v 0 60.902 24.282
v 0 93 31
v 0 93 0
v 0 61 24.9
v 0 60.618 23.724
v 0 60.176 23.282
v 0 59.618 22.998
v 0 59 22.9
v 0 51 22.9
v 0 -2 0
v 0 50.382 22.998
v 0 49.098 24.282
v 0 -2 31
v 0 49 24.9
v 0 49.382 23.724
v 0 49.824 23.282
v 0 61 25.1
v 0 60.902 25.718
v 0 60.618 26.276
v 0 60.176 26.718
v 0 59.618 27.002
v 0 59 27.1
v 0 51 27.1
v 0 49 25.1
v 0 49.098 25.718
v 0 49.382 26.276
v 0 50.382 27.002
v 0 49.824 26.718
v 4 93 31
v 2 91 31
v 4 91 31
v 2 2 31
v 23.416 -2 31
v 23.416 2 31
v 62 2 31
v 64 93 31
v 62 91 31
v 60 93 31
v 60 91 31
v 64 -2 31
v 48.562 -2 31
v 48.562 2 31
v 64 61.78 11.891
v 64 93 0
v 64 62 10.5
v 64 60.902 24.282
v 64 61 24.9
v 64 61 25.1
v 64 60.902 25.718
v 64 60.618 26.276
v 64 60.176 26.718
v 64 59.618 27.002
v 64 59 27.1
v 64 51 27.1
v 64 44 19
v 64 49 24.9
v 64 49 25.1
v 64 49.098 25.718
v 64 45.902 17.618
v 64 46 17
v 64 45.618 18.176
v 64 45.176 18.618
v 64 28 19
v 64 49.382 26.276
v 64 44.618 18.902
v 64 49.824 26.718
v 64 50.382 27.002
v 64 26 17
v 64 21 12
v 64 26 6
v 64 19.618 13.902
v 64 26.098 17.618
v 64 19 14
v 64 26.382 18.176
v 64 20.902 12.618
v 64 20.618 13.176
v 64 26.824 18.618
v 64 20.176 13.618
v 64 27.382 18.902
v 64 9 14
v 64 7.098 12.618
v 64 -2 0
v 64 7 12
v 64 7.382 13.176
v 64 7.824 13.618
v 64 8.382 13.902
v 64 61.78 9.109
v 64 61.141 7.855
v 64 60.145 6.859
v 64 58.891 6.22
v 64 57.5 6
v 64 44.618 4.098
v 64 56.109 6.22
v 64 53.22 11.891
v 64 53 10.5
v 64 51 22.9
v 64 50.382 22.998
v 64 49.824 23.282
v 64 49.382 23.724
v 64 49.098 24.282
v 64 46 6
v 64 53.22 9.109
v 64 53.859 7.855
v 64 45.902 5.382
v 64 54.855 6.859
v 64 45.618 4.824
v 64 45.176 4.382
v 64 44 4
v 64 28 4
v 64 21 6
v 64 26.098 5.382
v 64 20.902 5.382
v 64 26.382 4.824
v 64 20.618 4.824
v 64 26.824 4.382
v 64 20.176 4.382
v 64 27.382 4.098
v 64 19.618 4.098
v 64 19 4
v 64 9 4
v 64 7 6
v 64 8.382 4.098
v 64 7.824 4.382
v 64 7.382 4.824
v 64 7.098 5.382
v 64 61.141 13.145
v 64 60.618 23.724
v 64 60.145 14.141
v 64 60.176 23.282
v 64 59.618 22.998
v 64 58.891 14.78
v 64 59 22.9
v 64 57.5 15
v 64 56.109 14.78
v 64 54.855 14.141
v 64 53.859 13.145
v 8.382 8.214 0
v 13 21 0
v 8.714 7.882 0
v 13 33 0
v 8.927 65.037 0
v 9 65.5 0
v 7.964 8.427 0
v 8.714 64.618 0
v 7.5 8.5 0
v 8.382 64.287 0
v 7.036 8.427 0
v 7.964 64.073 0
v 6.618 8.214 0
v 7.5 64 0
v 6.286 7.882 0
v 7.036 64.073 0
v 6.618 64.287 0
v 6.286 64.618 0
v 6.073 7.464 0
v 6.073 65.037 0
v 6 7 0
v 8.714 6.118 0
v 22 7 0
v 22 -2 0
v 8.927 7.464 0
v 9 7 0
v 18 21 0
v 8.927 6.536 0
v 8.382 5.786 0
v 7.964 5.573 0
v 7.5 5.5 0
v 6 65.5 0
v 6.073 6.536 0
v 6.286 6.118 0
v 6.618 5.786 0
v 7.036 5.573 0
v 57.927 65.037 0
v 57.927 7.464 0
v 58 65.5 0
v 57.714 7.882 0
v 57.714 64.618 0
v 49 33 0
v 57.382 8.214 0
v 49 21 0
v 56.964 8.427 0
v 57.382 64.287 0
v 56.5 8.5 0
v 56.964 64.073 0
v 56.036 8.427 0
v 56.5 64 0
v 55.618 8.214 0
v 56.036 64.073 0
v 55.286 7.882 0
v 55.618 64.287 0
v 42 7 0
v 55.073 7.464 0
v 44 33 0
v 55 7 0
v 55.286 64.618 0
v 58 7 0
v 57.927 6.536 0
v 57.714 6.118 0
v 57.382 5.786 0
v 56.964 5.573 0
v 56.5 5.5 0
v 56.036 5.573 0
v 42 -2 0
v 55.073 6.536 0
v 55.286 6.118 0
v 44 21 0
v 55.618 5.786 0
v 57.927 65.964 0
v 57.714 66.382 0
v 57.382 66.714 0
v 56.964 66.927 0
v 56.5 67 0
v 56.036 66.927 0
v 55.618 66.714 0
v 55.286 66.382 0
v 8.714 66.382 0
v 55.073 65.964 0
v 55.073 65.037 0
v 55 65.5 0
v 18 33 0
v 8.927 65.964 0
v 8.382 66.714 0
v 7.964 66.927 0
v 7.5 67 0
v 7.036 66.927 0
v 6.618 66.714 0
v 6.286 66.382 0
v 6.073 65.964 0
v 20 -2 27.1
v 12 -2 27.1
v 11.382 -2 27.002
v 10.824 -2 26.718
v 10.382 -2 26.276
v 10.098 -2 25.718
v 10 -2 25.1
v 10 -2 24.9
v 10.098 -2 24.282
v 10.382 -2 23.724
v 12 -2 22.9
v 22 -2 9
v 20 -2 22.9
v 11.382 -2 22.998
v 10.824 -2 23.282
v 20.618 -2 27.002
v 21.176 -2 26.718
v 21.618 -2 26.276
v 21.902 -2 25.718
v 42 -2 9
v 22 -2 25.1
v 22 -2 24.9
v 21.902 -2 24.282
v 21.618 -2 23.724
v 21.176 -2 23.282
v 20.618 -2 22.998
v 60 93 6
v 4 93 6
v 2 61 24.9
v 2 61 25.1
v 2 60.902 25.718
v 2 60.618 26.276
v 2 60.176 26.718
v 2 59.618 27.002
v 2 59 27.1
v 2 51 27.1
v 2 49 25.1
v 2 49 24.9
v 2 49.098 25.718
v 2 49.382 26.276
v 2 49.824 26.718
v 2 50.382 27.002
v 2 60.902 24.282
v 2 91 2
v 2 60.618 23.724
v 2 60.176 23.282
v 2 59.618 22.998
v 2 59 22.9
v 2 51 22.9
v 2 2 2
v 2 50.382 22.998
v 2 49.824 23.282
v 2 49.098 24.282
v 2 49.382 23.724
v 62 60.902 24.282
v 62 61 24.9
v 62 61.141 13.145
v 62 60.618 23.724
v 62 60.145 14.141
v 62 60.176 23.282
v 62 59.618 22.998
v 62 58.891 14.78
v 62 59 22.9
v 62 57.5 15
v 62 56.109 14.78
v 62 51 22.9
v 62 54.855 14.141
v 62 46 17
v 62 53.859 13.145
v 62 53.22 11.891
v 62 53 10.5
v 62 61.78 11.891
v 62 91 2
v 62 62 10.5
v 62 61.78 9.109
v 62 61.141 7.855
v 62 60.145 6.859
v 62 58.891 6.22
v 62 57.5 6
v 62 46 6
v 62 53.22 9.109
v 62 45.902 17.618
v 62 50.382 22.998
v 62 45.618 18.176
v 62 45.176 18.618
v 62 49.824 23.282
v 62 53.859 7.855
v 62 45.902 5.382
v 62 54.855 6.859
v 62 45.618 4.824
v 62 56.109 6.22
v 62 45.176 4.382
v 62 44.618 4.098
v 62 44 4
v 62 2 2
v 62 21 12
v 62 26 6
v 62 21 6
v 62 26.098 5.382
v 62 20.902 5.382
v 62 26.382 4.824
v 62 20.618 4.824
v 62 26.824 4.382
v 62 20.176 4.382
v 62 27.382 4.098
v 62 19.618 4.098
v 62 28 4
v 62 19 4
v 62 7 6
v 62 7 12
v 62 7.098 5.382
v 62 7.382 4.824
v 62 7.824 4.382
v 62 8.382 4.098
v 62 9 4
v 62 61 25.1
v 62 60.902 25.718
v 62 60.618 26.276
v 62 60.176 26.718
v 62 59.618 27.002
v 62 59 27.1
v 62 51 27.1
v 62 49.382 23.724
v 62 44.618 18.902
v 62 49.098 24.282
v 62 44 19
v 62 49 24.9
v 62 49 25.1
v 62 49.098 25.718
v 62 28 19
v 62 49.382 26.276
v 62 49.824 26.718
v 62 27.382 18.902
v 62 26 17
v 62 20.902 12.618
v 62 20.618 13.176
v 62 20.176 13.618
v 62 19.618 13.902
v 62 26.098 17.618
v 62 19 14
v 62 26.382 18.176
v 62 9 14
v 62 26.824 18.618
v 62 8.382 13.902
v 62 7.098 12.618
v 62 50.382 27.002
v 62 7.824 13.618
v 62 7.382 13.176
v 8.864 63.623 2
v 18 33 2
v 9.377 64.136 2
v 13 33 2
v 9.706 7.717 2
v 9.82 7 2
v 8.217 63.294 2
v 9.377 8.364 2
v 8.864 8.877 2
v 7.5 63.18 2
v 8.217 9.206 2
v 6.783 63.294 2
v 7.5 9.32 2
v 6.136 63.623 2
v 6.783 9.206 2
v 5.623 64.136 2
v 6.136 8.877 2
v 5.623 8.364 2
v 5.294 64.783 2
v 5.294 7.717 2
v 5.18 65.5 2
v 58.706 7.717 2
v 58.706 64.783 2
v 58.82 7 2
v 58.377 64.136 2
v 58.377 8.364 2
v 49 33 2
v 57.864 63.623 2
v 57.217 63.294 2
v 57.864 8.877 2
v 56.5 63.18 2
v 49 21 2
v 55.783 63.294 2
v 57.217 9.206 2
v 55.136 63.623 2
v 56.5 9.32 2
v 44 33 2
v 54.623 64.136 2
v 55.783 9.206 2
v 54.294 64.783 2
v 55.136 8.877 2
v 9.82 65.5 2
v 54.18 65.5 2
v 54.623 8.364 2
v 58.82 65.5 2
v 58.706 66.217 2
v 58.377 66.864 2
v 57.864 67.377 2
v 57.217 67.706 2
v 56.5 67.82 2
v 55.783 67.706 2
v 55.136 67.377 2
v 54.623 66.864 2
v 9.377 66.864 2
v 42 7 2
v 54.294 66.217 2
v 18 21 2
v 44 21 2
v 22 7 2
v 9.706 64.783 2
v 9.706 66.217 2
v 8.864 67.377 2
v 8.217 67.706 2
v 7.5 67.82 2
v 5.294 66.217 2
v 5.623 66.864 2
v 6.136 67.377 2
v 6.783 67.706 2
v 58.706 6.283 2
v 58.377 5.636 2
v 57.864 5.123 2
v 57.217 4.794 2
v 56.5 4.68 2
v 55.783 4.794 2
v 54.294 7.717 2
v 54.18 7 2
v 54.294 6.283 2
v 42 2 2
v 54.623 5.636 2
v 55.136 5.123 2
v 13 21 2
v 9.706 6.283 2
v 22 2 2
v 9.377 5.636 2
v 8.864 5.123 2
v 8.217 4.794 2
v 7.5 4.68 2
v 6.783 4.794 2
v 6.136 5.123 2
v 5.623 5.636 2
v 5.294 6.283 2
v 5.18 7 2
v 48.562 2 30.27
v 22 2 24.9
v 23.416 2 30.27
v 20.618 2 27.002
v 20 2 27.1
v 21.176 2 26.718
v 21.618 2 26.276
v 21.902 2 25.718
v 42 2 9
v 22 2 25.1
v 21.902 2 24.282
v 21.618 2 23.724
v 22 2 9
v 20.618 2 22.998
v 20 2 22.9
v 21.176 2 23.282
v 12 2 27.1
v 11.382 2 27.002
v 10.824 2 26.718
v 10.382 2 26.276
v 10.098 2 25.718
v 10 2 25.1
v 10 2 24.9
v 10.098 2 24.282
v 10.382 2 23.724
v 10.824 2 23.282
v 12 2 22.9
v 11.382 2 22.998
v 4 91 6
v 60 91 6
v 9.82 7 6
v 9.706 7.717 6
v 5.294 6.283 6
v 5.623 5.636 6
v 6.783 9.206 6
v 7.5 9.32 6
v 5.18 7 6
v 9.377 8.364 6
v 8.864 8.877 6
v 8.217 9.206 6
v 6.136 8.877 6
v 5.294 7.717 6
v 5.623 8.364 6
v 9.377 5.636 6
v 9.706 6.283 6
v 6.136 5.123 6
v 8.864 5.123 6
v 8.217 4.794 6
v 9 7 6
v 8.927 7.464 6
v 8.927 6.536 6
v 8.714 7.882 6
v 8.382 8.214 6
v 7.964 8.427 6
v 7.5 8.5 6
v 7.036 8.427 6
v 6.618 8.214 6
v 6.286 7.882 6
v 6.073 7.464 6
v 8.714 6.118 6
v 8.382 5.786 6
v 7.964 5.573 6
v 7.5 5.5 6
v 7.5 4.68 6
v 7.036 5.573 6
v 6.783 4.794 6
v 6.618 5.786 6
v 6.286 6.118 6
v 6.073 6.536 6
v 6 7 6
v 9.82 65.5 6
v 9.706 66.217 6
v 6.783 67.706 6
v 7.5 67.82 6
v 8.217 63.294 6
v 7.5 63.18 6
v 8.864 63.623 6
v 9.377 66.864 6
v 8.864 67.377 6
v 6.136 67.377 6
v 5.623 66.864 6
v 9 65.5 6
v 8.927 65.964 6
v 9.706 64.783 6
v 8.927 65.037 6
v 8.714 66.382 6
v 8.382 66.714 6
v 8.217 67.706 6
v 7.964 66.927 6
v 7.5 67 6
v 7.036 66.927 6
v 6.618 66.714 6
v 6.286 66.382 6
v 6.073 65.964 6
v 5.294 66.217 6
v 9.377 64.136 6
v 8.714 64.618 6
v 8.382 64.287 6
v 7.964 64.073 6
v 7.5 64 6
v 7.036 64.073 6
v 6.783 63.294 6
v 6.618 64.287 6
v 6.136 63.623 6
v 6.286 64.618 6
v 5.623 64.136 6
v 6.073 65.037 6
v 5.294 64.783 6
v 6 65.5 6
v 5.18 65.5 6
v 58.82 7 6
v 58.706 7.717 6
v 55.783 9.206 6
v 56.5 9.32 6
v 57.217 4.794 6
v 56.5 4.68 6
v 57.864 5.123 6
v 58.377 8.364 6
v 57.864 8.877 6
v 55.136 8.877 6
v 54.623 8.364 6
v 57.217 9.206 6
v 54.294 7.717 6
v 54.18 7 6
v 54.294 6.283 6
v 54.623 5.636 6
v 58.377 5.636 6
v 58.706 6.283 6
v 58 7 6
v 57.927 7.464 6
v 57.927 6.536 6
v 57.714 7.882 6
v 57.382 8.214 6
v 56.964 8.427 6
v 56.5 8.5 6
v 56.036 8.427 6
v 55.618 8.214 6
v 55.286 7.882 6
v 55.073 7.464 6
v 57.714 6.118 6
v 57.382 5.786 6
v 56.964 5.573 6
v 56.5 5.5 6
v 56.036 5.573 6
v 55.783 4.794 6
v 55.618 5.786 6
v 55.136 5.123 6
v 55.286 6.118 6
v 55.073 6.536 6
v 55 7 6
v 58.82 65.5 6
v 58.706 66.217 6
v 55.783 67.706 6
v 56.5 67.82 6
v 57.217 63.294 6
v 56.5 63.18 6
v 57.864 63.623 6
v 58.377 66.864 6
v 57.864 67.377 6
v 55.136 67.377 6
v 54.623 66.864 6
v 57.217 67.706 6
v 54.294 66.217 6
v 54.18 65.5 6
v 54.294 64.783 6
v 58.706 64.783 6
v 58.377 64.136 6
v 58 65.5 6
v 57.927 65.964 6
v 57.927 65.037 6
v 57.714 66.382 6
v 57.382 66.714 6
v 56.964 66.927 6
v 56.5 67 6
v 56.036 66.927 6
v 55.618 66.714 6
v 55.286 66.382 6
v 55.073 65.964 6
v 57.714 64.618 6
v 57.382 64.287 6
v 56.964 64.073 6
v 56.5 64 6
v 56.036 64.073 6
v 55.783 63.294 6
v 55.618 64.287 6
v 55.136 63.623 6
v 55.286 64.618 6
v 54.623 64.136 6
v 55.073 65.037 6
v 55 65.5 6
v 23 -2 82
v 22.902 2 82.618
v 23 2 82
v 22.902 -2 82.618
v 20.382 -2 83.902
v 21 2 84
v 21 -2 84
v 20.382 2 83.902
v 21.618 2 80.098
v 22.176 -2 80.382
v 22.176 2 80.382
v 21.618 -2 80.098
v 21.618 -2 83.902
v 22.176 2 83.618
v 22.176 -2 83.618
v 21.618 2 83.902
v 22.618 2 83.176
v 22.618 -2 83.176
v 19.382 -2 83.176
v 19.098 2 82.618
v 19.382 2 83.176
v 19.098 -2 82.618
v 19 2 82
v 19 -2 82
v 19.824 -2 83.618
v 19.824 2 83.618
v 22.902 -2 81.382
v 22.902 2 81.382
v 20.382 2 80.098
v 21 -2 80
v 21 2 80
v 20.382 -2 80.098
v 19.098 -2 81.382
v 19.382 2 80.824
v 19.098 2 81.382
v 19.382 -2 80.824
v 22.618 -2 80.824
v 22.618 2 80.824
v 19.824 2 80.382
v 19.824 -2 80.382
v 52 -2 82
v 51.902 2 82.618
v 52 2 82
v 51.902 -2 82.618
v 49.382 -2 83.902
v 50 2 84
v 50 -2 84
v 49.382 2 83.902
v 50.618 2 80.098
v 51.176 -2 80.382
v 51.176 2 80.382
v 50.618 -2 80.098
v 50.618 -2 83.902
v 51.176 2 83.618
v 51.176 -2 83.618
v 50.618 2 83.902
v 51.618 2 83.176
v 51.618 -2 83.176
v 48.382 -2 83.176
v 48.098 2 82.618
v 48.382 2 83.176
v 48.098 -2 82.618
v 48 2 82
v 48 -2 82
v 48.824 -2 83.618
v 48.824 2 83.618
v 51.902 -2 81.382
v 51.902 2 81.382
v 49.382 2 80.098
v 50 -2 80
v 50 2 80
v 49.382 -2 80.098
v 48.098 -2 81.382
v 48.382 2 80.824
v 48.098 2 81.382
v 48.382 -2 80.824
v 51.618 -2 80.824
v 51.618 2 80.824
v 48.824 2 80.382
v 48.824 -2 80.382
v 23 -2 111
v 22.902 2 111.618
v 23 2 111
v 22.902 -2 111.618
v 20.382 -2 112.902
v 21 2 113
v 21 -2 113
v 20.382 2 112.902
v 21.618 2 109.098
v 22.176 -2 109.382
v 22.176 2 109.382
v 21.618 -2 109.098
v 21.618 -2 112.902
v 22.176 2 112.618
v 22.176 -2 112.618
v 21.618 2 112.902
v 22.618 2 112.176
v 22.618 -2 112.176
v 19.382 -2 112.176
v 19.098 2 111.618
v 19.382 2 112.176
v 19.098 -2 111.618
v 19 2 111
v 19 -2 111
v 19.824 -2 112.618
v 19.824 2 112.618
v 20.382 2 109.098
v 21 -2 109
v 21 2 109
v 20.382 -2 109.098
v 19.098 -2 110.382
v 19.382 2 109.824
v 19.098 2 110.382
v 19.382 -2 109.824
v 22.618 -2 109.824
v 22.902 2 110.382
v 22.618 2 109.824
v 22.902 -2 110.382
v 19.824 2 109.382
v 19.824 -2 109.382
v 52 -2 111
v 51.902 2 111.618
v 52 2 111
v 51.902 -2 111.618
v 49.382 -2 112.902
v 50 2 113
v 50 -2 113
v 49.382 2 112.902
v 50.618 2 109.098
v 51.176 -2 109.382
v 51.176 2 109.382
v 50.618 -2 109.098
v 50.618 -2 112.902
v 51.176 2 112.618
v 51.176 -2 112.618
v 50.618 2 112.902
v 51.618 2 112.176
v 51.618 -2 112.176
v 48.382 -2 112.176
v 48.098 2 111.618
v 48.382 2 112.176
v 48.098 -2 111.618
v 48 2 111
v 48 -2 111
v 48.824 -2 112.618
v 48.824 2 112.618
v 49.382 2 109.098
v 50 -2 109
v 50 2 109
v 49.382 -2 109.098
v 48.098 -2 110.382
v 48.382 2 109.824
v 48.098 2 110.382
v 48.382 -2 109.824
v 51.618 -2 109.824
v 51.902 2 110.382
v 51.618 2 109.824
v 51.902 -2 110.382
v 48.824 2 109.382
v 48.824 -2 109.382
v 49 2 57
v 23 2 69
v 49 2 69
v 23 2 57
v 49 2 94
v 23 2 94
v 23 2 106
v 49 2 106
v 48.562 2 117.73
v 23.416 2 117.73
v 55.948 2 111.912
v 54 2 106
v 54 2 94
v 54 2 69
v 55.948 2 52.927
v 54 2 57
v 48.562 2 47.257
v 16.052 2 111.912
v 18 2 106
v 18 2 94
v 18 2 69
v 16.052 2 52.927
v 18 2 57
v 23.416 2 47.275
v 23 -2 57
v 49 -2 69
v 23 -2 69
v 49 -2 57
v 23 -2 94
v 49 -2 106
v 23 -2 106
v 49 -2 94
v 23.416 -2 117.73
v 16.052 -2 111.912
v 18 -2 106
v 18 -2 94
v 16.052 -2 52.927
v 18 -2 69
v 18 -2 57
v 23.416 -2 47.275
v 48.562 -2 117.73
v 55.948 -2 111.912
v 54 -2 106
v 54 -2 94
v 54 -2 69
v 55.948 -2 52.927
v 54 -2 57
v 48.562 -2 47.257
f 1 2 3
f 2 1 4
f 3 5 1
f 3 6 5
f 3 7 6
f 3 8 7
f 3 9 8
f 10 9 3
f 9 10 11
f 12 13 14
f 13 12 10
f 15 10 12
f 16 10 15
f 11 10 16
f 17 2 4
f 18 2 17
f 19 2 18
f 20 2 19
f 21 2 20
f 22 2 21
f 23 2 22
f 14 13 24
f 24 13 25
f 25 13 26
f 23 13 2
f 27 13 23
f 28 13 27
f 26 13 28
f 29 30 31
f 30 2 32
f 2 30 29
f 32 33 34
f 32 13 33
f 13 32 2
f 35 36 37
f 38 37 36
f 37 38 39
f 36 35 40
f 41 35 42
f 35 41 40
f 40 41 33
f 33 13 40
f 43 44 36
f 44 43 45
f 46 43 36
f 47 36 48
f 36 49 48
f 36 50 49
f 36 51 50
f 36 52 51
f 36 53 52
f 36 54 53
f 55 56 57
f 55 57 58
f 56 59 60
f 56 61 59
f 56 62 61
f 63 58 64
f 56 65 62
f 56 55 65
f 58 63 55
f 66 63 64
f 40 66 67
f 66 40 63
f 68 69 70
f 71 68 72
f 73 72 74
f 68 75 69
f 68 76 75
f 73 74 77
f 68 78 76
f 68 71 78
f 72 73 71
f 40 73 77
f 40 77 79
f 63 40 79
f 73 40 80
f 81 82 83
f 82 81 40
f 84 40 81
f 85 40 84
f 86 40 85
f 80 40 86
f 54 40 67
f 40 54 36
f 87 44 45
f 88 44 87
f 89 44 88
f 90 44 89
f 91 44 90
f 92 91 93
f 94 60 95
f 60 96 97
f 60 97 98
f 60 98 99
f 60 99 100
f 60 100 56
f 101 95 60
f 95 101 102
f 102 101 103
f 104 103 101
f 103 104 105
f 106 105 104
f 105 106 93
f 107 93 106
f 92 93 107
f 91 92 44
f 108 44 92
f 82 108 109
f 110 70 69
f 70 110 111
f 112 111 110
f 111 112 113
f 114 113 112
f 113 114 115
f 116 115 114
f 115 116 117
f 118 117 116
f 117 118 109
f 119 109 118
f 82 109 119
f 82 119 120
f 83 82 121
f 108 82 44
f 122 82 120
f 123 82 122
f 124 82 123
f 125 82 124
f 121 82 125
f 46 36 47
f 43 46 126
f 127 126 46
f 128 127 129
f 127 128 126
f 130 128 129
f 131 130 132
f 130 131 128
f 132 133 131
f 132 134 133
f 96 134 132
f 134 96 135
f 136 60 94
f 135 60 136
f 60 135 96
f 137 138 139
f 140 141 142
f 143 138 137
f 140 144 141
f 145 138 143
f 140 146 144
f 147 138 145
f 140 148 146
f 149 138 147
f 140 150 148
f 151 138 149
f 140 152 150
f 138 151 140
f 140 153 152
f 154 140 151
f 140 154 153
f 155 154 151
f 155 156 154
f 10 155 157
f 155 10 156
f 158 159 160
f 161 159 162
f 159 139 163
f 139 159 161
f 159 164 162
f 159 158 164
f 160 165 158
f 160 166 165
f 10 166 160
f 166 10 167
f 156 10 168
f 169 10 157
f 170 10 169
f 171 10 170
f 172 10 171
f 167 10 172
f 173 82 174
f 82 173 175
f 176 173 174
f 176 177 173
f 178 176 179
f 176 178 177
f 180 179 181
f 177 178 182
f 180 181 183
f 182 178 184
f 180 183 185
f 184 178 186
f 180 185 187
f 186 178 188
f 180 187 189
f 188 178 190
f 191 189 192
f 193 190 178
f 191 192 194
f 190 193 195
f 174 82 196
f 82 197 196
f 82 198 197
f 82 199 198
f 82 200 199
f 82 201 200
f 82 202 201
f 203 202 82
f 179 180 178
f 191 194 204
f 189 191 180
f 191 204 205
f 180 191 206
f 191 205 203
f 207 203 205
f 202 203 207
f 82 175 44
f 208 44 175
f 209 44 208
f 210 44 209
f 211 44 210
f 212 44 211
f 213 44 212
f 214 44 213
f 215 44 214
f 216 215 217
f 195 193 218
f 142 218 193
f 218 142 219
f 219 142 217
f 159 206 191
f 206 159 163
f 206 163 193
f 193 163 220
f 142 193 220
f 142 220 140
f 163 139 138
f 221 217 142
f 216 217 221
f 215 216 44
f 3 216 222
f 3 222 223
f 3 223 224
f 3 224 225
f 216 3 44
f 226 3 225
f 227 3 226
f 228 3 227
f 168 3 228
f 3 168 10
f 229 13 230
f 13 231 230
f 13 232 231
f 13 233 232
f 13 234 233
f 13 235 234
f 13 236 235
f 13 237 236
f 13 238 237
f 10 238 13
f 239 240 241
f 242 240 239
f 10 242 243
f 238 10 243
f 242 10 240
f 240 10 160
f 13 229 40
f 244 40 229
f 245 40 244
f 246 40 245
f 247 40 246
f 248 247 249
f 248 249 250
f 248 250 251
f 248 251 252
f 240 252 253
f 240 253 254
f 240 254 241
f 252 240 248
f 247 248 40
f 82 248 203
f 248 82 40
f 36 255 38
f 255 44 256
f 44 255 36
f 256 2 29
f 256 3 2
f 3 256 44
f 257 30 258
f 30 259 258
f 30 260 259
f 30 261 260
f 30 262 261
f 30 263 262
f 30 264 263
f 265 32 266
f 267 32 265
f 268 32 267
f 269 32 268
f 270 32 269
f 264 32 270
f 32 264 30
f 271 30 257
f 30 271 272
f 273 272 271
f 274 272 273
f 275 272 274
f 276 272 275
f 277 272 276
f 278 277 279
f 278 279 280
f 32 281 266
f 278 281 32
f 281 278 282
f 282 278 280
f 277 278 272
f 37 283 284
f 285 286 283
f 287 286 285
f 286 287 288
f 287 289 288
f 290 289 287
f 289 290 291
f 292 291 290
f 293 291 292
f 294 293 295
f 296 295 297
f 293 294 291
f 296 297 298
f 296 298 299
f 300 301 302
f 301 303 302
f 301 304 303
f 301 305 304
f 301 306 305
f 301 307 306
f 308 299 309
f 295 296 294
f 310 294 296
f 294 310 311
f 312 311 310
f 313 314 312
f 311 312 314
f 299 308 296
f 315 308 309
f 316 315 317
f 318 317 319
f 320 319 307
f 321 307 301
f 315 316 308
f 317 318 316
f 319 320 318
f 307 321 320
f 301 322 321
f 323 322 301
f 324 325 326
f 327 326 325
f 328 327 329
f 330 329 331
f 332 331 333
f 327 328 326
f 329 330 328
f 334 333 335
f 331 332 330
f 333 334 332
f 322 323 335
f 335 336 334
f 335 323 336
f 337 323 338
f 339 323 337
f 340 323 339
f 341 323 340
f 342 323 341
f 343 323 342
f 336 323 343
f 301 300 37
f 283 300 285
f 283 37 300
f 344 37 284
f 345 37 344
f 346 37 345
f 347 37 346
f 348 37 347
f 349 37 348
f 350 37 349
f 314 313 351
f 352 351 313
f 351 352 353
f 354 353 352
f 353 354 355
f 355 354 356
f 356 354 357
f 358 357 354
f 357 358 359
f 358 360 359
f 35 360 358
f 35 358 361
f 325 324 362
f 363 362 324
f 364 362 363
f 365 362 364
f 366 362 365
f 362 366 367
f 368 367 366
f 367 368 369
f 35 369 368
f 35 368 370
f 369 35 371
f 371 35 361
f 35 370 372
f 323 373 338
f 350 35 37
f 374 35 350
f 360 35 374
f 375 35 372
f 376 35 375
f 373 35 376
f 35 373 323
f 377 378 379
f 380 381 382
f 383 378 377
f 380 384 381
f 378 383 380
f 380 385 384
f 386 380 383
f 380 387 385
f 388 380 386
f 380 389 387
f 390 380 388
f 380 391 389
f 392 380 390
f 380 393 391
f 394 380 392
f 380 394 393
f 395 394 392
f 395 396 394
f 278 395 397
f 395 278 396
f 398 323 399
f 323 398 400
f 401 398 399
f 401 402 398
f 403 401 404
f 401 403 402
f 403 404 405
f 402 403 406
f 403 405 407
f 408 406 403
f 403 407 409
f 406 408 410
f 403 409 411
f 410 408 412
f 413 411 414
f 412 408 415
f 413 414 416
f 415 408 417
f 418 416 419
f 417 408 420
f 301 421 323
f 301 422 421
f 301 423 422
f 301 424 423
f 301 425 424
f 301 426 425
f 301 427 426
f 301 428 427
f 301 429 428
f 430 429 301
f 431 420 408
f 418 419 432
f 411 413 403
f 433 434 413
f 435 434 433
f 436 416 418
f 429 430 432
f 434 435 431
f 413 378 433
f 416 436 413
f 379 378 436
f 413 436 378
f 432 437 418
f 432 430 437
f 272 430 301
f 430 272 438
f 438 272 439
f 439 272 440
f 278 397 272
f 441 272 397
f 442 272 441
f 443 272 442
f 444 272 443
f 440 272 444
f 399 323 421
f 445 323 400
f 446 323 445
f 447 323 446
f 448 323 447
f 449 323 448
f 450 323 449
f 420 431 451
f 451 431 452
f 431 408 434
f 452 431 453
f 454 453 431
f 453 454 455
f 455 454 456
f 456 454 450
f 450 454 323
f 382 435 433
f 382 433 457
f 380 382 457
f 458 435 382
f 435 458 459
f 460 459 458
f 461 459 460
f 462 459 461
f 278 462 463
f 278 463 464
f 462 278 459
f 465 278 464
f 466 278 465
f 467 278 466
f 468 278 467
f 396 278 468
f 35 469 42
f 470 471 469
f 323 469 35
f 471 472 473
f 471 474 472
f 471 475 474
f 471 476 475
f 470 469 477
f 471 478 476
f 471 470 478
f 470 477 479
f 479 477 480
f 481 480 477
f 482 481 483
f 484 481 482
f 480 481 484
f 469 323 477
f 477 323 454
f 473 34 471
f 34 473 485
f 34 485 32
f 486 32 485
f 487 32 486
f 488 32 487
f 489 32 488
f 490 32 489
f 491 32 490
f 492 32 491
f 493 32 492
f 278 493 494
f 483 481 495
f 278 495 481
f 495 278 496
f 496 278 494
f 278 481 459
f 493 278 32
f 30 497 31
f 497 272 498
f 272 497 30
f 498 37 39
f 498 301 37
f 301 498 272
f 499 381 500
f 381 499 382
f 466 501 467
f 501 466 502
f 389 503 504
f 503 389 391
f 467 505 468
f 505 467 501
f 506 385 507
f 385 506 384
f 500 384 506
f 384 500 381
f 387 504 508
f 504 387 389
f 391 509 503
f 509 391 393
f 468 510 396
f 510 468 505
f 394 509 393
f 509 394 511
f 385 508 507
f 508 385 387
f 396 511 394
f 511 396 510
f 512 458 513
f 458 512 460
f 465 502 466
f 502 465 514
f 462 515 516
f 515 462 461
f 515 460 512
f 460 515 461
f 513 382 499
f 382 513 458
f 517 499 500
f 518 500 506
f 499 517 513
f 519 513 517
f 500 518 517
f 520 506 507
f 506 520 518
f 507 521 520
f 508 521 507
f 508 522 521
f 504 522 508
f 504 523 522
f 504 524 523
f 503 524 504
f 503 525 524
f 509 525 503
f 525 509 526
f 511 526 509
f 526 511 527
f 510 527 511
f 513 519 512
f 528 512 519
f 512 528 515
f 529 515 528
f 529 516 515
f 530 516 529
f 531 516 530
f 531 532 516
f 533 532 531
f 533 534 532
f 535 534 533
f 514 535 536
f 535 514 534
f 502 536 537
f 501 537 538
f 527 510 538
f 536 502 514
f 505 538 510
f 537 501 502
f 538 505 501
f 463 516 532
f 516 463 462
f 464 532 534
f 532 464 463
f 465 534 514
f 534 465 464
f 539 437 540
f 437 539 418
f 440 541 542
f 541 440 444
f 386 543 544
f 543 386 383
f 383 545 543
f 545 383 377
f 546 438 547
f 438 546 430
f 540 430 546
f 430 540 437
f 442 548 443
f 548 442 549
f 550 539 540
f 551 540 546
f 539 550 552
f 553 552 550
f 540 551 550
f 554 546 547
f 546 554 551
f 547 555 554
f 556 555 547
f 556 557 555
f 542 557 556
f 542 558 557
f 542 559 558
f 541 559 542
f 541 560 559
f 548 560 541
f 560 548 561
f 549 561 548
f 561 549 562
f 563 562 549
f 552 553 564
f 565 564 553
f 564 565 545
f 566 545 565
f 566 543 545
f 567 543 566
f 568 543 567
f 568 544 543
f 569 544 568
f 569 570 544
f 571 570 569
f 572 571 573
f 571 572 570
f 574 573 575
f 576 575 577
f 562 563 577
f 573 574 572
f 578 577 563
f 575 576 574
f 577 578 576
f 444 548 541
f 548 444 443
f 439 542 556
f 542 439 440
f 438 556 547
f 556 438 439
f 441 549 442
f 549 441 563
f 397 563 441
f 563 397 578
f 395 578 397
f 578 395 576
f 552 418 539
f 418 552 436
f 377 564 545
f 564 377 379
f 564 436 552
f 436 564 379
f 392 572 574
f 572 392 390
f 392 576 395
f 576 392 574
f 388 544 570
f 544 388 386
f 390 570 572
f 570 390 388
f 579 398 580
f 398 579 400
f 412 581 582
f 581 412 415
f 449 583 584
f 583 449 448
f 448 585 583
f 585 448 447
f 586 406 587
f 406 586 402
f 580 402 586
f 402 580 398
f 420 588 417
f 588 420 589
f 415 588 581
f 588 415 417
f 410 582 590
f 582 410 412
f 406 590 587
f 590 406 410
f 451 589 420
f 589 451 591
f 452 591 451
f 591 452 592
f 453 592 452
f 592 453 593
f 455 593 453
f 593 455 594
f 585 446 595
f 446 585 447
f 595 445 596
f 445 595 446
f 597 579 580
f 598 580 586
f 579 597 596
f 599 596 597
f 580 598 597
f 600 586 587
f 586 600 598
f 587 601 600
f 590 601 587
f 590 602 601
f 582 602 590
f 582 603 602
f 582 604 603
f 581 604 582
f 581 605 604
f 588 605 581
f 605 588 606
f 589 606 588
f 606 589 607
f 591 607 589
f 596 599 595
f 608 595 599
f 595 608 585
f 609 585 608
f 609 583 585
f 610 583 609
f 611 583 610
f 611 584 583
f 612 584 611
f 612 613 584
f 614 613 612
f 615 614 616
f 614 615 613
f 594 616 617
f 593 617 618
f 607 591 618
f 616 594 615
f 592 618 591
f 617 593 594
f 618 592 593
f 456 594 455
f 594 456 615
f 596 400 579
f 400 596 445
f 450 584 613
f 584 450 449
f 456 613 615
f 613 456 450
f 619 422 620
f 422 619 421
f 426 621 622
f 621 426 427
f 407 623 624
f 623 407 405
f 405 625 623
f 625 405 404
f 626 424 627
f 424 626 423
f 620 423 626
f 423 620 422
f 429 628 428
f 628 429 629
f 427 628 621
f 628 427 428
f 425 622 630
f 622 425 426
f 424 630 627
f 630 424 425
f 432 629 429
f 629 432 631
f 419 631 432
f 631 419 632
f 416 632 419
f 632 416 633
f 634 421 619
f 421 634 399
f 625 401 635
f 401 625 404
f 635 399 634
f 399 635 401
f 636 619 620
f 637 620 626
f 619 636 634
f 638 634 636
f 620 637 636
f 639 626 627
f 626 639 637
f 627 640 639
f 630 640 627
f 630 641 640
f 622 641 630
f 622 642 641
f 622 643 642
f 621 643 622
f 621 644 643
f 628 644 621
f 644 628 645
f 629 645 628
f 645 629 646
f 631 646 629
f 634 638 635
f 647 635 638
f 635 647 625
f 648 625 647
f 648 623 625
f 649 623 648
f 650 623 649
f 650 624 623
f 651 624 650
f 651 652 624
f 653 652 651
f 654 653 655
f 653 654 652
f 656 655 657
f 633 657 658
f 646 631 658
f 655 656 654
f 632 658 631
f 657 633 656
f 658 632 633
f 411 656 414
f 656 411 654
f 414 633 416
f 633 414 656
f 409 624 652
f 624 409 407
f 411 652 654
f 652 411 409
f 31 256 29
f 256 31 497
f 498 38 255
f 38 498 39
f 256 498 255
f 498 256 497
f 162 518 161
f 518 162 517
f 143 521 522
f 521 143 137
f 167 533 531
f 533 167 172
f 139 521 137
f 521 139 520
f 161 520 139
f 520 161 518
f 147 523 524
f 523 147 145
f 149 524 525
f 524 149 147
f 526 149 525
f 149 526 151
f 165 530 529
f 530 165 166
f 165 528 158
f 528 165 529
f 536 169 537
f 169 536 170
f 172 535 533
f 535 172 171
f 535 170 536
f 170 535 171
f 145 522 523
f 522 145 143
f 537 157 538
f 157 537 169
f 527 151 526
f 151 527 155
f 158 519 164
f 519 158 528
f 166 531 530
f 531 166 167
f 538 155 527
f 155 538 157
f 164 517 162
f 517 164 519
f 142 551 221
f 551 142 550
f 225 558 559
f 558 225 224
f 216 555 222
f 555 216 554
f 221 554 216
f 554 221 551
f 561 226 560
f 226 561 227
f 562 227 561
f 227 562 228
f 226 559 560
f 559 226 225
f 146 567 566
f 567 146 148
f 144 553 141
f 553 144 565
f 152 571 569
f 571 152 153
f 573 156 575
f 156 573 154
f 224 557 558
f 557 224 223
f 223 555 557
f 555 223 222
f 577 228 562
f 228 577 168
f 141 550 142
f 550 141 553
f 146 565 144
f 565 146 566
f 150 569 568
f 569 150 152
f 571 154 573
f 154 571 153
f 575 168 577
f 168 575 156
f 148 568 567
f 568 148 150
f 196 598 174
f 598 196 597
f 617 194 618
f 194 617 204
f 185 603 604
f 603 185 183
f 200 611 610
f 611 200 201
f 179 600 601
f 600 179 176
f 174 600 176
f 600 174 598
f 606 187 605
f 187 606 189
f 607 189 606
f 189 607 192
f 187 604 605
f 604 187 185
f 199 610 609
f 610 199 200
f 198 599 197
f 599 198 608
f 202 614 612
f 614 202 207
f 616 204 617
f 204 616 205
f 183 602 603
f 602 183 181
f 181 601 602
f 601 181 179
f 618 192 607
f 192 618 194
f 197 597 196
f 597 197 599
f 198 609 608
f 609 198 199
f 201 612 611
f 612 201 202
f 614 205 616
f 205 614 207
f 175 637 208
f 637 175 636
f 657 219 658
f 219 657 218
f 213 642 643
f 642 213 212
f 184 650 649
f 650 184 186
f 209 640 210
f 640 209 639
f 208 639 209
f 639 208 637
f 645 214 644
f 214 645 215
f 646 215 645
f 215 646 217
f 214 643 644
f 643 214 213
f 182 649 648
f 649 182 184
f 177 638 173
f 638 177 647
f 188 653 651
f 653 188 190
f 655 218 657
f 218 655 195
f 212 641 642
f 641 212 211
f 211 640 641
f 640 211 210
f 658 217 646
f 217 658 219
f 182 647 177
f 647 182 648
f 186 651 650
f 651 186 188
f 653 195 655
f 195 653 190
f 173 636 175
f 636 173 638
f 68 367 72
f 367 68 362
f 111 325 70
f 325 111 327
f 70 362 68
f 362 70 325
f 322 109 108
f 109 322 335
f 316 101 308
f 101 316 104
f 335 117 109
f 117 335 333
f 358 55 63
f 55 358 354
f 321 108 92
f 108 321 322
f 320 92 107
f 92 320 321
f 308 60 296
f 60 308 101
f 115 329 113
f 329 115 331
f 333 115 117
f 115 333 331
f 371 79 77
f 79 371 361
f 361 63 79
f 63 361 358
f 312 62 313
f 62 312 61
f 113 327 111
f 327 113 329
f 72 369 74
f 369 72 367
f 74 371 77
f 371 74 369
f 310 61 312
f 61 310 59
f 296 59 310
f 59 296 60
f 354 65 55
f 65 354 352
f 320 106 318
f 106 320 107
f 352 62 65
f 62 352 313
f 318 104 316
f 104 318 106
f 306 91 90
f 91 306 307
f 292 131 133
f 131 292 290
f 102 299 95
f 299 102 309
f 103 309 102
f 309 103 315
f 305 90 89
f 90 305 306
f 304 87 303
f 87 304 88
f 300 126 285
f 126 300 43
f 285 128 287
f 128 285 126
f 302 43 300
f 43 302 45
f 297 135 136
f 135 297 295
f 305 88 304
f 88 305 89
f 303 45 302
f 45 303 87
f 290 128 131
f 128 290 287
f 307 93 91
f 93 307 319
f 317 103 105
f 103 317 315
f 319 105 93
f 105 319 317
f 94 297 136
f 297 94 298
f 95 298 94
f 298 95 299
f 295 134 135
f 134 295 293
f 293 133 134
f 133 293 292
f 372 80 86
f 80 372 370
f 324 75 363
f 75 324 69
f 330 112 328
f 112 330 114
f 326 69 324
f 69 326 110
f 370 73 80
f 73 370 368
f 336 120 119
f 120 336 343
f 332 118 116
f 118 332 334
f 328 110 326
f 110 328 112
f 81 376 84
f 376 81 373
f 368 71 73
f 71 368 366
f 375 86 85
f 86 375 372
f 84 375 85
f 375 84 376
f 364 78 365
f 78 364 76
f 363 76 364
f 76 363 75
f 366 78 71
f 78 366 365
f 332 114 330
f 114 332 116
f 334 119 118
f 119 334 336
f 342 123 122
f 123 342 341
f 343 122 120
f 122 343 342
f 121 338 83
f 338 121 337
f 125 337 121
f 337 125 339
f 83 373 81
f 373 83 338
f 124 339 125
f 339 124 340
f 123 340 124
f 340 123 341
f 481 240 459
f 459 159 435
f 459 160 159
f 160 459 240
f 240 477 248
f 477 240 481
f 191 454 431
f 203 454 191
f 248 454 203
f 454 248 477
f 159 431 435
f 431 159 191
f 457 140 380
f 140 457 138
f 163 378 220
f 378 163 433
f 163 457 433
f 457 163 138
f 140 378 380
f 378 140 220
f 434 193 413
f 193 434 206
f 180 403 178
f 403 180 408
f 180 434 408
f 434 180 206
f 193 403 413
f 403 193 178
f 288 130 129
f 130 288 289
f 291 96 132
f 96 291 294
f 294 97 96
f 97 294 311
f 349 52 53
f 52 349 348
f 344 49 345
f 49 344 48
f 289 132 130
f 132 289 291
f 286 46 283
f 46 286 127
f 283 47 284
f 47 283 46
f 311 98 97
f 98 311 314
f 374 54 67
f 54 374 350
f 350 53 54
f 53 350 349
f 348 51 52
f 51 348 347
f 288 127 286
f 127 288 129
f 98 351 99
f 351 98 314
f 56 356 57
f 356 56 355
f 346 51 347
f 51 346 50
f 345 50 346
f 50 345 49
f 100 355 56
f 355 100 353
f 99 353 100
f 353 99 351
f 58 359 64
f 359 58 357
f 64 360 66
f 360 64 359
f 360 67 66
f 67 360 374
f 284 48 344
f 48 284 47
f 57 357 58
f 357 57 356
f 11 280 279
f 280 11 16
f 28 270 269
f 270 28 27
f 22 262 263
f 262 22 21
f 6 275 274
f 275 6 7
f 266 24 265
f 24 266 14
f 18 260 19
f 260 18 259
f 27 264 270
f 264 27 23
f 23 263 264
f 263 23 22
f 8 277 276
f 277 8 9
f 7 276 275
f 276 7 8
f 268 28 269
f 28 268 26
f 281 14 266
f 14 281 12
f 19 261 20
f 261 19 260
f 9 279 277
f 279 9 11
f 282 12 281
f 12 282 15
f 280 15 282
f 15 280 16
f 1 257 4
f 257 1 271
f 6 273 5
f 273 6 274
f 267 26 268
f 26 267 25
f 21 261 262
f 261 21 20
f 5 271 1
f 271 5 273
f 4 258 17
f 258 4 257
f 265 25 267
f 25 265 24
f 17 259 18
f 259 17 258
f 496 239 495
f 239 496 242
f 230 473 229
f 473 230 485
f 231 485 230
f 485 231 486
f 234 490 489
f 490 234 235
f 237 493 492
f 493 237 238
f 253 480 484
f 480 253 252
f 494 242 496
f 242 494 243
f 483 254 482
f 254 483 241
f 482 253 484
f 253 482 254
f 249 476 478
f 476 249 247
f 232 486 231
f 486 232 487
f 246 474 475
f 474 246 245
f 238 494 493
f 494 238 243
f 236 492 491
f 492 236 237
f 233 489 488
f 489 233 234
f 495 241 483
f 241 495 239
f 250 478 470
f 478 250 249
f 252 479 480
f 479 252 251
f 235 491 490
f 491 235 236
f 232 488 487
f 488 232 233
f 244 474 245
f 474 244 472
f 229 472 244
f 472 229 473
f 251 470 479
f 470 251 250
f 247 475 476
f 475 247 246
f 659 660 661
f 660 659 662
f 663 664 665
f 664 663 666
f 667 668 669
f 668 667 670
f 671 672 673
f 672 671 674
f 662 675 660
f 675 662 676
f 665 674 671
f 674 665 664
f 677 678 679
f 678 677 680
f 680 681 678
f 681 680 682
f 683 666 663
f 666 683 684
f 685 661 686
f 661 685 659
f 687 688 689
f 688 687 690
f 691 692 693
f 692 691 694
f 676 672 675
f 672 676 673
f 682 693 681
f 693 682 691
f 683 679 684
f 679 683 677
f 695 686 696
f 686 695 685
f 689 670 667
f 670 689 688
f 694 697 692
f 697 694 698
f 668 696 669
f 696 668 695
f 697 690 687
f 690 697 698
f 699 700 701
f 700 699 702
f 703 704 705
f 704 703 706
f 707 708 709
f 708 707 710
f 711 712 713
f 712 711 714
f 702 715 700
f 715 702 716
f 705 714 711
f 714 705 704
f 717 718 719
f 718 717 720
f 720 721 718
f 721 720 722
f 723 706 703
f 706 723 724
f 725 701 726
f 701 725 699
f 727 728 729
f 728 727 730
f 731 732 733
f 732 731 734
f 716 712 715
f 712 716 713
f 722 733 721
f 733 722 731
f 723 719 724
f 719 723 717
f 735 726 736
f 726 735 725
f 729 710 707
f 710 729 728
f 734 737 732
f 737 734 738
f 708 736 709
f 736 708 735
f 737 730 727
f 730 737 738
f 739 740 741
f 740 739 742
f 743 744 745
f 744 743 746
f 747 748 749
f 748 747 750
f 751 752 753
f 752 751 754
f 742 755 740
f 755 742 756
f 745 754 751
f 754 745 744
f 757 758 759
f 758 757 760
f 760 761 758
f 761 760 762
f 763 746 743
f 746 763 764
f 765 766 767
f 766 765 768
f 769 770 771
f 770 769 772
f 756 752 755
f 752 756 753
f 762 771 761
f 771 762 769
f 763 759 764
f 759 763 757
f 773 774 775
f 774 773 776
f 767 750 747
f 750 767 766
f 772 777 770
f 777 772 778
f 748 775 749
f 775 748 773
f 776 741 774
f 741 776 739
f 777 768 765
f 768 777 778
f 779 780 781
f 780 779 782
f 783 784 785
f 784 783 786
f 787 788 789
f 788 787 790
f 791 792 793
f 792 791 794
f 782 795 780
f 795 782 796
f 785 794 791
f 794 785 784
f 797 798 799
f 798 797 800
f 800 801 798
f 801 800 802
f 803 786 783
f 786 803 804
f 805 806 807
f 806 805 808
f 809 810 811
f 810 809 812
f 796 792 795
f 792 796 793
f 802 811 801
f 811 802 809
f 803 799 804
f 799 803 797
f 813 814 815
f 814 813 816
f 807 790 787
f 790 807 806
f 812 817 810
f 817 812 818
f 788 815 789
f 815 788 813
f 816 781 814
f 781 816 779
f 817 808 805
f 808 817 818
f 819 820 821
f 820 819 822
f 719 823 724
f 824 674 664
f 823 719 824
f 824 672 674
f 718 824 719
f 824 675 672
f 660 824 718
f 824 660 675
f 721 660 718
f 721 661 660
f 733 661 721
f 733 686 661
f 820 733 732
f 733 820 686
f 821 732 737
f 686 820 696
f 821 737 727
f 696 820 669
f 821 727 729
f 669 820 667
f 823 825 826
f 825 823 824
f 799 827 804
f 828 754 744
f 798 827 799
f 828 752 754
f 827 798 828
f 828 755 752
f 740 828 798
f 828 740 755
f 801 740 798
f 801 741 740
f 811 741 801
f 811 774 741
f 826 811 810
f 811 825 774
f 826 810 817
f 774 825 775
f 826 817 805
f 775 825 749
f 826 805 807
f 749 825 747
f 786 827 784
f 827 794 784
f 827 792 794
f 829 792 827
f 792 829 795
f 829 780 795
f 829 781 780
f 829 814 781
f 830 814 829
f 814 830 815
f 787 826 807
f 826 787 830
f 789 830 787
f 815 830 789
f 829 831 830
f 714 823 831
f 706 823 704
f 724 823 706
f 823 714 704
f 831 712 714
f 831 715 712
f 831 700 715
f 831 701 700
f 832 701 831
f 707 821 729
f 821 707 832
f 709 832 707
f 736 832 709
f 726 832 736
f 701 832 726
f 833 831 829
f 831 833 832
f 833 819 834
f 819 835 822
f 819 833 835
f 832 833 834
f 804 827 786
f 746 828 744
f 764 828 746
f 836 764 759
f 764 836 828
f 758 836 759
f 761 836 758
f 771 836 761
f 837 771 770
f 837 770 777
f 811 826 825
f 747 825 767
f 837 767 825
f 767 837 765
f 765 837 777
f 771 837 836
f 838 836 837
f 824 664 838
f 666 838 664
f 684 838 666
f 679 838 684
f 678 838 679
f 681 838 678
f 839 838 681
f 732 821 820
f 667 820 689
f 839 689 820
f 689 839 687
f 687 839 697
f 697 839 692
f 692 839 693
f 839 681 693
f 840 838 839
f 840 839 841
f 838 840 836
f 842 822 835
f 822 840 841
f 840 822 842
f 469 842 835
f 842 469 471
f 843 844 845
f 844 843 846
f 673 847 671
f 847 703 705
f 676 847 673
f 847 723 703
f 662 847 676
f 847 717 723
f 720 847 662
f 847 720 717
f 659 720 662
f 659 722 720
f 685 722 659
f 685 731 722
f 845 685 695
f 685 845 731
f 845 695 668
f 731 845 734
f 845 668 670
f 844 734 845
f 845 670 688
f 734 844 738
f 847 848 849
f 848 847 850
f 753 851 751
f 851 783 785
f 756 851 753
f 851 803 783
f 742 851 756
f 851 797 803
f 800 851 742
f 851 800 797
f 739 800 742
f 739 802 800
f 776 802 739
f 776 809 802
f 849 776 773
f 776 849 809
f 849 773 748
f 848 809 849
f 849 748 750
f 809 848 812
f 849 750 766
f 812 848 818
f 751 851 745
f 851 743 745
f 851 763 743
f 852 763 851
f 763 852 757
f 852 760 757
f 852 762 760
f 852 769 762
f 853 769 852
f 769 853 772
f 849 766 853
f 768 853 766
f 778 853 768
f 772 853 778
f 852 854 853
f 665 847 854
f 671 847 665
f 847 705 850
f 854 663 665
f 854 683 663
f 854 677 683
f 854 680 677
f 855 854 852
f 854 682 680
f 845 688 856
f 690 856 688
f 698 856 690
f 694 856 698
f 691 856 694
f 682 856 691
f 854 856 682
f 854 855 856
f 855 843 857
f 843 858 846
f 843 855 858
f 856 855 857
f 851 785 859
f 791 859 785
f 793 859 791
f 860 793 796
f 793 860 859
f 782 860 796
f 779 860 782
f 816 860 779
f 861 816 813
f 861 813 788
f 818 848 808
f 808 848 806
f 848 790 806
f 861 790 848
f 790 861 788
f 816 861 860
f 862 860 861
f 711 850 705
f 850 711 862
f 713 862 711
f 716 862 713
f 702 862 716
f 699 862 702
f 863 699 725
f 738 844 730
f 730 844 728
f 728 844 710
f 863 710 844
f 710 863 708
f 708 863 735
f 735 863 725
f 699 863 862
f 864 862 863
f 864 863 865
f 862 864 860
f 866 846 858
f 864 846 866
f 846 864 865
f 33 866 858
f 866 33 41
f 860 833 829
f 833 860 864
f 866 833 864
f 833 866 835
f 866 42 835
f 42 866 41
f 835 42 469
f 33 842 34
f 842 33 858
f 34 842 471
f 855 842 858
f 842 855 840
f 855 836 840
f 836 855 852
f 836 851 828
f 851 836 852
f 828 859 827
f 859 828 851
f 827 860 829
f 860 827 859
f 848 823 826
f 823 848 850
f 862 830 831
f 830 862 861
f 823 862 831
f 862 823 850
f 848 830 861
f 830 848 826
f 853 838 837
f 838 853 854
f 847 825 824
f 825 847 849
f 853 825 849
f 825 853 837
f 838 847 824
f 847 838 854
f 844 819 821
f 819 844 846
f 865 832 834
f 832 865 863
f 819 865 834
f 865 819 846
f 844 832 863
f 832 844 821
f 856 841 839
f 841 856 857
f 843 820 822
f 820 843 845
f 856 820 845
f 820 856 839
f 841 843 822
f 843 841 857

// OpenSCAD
// RPi Case Base
// by Ming-Dao Chia
// for the Borevitz Lab, Australian National University

// Settings
circle_res = 20; // can increase for final export
case_height = 31; // increase if adding lots of shields
rounding=2; // for square ports, less = sharper corners

// Constants
fudge=0.2; // just for the tongue
RPi_space_height = 4; // how high the screw spacers on the bottom are
RPi_screws = 3; // size of RPi screws
RPi_screw_hole_thickness=0.82; // spacer wall thickness

// configurable hole for screws
module screwHole(diameter, x, y){ 
    translate([x,y,-2])
    cylinder(d=diameter, h=10, $fn=circle_res);
}

// form the outer wall of bottom screw spacers
module spacer(x,y){
    translate([x,y,2])
            cylinder(d=RPi_screws+(RPi_screw_hole_thickness*2),h=RPi_space_height, $fn=circle_res);
}

// rounded rectangle module
module sidePort(x,y, rounding=rounding){
    rotate([0,90,0])
    minkowski()
    {
      cube([y-rounding*2,x-rounding*2,1],center=true);
      cylinder(r=rounding,h=5, $fn=circle_res);
    }
}

// larger 180 camera
module bigCamera(xpos,ypos){
    screwHole(4, xpos,ypos);
    screwHole(4, xpos+29,ypos);
    screwHole(4, xpos,ypos+29);
    screwHole(4, xpos+29,ypos+29);
}

// fits standard RPi camera
module smallCamera(xpos,ypos){
    screwHole(3,xpos,ypos);
    screwHole(3,xpos+21,ypos);
    screwHole(3,xpos,ypos+13);
    screwHole(3,xpos+21,ypos+13);
}

module RPi_core(){
    difference(){
        union(){
            difference(){
                translate([0,-2,0])
                cube([64,95,case_height]);
                // space for the RPi itself
                translate([2,2,2])
                cube([60,89,case_height]);
            }
             // bottom mounting spacers
            spacer(7.5, 7);
            spacer(7.5, 65.5);
            spacer(56.5, 7);
            spacer(56.5, 65.5);
        }
        // USB/Ethernet port access
        translate([4,90,6])
        cube([56,5,case_height]);
        // Bottom mounting screws
        // rods to connect to case bottom
        screwHole(RPi_screws, 7.5, 7);
        screwHole(RPi_screws, 7.5, 65.5);
        screwHole(RPi_screws, 56.5, 7);
        screwHole(RPi_screws, 56.5, 65.5);
        // HDMI slot
        translate([60,36,11.5])
        sidePort(20,15);
        // Power cable
        translate([60,57.5,10.5])
        sidePort(7,7,4.5);
        // side USB
        translate([60,14,9])
        sidePort(14,10);
        // microSD slot
        translate([22,-3,-1])
        cube([20,10,10]);
        // cable tie slots
        slot_width=12;
        slot_depth=5;
        translate([13,21, -fudge])
        cube([slot_depth,slot_width,2+2*fudge]);
        translate([13+13+18,21, -fudge])
        cube([slot_depth,slot_width,2+2*fudge]);
        // top cable tie slots
        translate([60,55,25])
        sidePort(slot_width,4.2);
        translate([-1,55,25])
        sidePort(slot_width,4.2);
        translate([16,-3,25])
        rotate([0,0,90])
        sidePort(slot_width,4.2);
    }
}


module mounting_flap(h)
{
  difference(){
  scale([25.4/90, -28/90, 1]) union()
  {
    difference()
    {
       linear_extrude(height=h) // Autogenerated from Inkscape
         polygon([[-44.590820,-140.560545],[-70.682620,-121.859375],[-70.682620,67.734375],[-44.590820,85.902345],[-44.590820,140.560545],[44.510740,140.560545],[44.510740,85.958985],[70.682620,67.734375],[70.682620,-121.859375],[44.510740,-140.560545]]);
    }
  }
  slot_width=12;
  slot_depth=5;
  translate([13,20, -fudge])
  cube([slot_depth,slot_width,h+2*fudge]);
  translate([-18,20, -fudge])
  cube([slot_depth,slot_width,h+2*fudge]);
  translate([13,-17, -fudge])
  cube([slot_depth,slot_width,h+2*fudge]);
  translate([-18,-17, -fudge])
  cube([slot_depth,slot_width,h+2*fudge]);
  translate([-25,-10,0])
  bigCamera(10,18);
  }
}

module RPi_bottom(){
    union(){
        RPi_core();
        rotate([90,0,0])
        translate([36,43+case_height,-2])
        mounting_flap(4);
    }
}

RPi_bottom();

// uncomment to import other half for debugging
// #translate([64,0,37]) rotate([0,180,0]) import("RPiCC_top.stl");
